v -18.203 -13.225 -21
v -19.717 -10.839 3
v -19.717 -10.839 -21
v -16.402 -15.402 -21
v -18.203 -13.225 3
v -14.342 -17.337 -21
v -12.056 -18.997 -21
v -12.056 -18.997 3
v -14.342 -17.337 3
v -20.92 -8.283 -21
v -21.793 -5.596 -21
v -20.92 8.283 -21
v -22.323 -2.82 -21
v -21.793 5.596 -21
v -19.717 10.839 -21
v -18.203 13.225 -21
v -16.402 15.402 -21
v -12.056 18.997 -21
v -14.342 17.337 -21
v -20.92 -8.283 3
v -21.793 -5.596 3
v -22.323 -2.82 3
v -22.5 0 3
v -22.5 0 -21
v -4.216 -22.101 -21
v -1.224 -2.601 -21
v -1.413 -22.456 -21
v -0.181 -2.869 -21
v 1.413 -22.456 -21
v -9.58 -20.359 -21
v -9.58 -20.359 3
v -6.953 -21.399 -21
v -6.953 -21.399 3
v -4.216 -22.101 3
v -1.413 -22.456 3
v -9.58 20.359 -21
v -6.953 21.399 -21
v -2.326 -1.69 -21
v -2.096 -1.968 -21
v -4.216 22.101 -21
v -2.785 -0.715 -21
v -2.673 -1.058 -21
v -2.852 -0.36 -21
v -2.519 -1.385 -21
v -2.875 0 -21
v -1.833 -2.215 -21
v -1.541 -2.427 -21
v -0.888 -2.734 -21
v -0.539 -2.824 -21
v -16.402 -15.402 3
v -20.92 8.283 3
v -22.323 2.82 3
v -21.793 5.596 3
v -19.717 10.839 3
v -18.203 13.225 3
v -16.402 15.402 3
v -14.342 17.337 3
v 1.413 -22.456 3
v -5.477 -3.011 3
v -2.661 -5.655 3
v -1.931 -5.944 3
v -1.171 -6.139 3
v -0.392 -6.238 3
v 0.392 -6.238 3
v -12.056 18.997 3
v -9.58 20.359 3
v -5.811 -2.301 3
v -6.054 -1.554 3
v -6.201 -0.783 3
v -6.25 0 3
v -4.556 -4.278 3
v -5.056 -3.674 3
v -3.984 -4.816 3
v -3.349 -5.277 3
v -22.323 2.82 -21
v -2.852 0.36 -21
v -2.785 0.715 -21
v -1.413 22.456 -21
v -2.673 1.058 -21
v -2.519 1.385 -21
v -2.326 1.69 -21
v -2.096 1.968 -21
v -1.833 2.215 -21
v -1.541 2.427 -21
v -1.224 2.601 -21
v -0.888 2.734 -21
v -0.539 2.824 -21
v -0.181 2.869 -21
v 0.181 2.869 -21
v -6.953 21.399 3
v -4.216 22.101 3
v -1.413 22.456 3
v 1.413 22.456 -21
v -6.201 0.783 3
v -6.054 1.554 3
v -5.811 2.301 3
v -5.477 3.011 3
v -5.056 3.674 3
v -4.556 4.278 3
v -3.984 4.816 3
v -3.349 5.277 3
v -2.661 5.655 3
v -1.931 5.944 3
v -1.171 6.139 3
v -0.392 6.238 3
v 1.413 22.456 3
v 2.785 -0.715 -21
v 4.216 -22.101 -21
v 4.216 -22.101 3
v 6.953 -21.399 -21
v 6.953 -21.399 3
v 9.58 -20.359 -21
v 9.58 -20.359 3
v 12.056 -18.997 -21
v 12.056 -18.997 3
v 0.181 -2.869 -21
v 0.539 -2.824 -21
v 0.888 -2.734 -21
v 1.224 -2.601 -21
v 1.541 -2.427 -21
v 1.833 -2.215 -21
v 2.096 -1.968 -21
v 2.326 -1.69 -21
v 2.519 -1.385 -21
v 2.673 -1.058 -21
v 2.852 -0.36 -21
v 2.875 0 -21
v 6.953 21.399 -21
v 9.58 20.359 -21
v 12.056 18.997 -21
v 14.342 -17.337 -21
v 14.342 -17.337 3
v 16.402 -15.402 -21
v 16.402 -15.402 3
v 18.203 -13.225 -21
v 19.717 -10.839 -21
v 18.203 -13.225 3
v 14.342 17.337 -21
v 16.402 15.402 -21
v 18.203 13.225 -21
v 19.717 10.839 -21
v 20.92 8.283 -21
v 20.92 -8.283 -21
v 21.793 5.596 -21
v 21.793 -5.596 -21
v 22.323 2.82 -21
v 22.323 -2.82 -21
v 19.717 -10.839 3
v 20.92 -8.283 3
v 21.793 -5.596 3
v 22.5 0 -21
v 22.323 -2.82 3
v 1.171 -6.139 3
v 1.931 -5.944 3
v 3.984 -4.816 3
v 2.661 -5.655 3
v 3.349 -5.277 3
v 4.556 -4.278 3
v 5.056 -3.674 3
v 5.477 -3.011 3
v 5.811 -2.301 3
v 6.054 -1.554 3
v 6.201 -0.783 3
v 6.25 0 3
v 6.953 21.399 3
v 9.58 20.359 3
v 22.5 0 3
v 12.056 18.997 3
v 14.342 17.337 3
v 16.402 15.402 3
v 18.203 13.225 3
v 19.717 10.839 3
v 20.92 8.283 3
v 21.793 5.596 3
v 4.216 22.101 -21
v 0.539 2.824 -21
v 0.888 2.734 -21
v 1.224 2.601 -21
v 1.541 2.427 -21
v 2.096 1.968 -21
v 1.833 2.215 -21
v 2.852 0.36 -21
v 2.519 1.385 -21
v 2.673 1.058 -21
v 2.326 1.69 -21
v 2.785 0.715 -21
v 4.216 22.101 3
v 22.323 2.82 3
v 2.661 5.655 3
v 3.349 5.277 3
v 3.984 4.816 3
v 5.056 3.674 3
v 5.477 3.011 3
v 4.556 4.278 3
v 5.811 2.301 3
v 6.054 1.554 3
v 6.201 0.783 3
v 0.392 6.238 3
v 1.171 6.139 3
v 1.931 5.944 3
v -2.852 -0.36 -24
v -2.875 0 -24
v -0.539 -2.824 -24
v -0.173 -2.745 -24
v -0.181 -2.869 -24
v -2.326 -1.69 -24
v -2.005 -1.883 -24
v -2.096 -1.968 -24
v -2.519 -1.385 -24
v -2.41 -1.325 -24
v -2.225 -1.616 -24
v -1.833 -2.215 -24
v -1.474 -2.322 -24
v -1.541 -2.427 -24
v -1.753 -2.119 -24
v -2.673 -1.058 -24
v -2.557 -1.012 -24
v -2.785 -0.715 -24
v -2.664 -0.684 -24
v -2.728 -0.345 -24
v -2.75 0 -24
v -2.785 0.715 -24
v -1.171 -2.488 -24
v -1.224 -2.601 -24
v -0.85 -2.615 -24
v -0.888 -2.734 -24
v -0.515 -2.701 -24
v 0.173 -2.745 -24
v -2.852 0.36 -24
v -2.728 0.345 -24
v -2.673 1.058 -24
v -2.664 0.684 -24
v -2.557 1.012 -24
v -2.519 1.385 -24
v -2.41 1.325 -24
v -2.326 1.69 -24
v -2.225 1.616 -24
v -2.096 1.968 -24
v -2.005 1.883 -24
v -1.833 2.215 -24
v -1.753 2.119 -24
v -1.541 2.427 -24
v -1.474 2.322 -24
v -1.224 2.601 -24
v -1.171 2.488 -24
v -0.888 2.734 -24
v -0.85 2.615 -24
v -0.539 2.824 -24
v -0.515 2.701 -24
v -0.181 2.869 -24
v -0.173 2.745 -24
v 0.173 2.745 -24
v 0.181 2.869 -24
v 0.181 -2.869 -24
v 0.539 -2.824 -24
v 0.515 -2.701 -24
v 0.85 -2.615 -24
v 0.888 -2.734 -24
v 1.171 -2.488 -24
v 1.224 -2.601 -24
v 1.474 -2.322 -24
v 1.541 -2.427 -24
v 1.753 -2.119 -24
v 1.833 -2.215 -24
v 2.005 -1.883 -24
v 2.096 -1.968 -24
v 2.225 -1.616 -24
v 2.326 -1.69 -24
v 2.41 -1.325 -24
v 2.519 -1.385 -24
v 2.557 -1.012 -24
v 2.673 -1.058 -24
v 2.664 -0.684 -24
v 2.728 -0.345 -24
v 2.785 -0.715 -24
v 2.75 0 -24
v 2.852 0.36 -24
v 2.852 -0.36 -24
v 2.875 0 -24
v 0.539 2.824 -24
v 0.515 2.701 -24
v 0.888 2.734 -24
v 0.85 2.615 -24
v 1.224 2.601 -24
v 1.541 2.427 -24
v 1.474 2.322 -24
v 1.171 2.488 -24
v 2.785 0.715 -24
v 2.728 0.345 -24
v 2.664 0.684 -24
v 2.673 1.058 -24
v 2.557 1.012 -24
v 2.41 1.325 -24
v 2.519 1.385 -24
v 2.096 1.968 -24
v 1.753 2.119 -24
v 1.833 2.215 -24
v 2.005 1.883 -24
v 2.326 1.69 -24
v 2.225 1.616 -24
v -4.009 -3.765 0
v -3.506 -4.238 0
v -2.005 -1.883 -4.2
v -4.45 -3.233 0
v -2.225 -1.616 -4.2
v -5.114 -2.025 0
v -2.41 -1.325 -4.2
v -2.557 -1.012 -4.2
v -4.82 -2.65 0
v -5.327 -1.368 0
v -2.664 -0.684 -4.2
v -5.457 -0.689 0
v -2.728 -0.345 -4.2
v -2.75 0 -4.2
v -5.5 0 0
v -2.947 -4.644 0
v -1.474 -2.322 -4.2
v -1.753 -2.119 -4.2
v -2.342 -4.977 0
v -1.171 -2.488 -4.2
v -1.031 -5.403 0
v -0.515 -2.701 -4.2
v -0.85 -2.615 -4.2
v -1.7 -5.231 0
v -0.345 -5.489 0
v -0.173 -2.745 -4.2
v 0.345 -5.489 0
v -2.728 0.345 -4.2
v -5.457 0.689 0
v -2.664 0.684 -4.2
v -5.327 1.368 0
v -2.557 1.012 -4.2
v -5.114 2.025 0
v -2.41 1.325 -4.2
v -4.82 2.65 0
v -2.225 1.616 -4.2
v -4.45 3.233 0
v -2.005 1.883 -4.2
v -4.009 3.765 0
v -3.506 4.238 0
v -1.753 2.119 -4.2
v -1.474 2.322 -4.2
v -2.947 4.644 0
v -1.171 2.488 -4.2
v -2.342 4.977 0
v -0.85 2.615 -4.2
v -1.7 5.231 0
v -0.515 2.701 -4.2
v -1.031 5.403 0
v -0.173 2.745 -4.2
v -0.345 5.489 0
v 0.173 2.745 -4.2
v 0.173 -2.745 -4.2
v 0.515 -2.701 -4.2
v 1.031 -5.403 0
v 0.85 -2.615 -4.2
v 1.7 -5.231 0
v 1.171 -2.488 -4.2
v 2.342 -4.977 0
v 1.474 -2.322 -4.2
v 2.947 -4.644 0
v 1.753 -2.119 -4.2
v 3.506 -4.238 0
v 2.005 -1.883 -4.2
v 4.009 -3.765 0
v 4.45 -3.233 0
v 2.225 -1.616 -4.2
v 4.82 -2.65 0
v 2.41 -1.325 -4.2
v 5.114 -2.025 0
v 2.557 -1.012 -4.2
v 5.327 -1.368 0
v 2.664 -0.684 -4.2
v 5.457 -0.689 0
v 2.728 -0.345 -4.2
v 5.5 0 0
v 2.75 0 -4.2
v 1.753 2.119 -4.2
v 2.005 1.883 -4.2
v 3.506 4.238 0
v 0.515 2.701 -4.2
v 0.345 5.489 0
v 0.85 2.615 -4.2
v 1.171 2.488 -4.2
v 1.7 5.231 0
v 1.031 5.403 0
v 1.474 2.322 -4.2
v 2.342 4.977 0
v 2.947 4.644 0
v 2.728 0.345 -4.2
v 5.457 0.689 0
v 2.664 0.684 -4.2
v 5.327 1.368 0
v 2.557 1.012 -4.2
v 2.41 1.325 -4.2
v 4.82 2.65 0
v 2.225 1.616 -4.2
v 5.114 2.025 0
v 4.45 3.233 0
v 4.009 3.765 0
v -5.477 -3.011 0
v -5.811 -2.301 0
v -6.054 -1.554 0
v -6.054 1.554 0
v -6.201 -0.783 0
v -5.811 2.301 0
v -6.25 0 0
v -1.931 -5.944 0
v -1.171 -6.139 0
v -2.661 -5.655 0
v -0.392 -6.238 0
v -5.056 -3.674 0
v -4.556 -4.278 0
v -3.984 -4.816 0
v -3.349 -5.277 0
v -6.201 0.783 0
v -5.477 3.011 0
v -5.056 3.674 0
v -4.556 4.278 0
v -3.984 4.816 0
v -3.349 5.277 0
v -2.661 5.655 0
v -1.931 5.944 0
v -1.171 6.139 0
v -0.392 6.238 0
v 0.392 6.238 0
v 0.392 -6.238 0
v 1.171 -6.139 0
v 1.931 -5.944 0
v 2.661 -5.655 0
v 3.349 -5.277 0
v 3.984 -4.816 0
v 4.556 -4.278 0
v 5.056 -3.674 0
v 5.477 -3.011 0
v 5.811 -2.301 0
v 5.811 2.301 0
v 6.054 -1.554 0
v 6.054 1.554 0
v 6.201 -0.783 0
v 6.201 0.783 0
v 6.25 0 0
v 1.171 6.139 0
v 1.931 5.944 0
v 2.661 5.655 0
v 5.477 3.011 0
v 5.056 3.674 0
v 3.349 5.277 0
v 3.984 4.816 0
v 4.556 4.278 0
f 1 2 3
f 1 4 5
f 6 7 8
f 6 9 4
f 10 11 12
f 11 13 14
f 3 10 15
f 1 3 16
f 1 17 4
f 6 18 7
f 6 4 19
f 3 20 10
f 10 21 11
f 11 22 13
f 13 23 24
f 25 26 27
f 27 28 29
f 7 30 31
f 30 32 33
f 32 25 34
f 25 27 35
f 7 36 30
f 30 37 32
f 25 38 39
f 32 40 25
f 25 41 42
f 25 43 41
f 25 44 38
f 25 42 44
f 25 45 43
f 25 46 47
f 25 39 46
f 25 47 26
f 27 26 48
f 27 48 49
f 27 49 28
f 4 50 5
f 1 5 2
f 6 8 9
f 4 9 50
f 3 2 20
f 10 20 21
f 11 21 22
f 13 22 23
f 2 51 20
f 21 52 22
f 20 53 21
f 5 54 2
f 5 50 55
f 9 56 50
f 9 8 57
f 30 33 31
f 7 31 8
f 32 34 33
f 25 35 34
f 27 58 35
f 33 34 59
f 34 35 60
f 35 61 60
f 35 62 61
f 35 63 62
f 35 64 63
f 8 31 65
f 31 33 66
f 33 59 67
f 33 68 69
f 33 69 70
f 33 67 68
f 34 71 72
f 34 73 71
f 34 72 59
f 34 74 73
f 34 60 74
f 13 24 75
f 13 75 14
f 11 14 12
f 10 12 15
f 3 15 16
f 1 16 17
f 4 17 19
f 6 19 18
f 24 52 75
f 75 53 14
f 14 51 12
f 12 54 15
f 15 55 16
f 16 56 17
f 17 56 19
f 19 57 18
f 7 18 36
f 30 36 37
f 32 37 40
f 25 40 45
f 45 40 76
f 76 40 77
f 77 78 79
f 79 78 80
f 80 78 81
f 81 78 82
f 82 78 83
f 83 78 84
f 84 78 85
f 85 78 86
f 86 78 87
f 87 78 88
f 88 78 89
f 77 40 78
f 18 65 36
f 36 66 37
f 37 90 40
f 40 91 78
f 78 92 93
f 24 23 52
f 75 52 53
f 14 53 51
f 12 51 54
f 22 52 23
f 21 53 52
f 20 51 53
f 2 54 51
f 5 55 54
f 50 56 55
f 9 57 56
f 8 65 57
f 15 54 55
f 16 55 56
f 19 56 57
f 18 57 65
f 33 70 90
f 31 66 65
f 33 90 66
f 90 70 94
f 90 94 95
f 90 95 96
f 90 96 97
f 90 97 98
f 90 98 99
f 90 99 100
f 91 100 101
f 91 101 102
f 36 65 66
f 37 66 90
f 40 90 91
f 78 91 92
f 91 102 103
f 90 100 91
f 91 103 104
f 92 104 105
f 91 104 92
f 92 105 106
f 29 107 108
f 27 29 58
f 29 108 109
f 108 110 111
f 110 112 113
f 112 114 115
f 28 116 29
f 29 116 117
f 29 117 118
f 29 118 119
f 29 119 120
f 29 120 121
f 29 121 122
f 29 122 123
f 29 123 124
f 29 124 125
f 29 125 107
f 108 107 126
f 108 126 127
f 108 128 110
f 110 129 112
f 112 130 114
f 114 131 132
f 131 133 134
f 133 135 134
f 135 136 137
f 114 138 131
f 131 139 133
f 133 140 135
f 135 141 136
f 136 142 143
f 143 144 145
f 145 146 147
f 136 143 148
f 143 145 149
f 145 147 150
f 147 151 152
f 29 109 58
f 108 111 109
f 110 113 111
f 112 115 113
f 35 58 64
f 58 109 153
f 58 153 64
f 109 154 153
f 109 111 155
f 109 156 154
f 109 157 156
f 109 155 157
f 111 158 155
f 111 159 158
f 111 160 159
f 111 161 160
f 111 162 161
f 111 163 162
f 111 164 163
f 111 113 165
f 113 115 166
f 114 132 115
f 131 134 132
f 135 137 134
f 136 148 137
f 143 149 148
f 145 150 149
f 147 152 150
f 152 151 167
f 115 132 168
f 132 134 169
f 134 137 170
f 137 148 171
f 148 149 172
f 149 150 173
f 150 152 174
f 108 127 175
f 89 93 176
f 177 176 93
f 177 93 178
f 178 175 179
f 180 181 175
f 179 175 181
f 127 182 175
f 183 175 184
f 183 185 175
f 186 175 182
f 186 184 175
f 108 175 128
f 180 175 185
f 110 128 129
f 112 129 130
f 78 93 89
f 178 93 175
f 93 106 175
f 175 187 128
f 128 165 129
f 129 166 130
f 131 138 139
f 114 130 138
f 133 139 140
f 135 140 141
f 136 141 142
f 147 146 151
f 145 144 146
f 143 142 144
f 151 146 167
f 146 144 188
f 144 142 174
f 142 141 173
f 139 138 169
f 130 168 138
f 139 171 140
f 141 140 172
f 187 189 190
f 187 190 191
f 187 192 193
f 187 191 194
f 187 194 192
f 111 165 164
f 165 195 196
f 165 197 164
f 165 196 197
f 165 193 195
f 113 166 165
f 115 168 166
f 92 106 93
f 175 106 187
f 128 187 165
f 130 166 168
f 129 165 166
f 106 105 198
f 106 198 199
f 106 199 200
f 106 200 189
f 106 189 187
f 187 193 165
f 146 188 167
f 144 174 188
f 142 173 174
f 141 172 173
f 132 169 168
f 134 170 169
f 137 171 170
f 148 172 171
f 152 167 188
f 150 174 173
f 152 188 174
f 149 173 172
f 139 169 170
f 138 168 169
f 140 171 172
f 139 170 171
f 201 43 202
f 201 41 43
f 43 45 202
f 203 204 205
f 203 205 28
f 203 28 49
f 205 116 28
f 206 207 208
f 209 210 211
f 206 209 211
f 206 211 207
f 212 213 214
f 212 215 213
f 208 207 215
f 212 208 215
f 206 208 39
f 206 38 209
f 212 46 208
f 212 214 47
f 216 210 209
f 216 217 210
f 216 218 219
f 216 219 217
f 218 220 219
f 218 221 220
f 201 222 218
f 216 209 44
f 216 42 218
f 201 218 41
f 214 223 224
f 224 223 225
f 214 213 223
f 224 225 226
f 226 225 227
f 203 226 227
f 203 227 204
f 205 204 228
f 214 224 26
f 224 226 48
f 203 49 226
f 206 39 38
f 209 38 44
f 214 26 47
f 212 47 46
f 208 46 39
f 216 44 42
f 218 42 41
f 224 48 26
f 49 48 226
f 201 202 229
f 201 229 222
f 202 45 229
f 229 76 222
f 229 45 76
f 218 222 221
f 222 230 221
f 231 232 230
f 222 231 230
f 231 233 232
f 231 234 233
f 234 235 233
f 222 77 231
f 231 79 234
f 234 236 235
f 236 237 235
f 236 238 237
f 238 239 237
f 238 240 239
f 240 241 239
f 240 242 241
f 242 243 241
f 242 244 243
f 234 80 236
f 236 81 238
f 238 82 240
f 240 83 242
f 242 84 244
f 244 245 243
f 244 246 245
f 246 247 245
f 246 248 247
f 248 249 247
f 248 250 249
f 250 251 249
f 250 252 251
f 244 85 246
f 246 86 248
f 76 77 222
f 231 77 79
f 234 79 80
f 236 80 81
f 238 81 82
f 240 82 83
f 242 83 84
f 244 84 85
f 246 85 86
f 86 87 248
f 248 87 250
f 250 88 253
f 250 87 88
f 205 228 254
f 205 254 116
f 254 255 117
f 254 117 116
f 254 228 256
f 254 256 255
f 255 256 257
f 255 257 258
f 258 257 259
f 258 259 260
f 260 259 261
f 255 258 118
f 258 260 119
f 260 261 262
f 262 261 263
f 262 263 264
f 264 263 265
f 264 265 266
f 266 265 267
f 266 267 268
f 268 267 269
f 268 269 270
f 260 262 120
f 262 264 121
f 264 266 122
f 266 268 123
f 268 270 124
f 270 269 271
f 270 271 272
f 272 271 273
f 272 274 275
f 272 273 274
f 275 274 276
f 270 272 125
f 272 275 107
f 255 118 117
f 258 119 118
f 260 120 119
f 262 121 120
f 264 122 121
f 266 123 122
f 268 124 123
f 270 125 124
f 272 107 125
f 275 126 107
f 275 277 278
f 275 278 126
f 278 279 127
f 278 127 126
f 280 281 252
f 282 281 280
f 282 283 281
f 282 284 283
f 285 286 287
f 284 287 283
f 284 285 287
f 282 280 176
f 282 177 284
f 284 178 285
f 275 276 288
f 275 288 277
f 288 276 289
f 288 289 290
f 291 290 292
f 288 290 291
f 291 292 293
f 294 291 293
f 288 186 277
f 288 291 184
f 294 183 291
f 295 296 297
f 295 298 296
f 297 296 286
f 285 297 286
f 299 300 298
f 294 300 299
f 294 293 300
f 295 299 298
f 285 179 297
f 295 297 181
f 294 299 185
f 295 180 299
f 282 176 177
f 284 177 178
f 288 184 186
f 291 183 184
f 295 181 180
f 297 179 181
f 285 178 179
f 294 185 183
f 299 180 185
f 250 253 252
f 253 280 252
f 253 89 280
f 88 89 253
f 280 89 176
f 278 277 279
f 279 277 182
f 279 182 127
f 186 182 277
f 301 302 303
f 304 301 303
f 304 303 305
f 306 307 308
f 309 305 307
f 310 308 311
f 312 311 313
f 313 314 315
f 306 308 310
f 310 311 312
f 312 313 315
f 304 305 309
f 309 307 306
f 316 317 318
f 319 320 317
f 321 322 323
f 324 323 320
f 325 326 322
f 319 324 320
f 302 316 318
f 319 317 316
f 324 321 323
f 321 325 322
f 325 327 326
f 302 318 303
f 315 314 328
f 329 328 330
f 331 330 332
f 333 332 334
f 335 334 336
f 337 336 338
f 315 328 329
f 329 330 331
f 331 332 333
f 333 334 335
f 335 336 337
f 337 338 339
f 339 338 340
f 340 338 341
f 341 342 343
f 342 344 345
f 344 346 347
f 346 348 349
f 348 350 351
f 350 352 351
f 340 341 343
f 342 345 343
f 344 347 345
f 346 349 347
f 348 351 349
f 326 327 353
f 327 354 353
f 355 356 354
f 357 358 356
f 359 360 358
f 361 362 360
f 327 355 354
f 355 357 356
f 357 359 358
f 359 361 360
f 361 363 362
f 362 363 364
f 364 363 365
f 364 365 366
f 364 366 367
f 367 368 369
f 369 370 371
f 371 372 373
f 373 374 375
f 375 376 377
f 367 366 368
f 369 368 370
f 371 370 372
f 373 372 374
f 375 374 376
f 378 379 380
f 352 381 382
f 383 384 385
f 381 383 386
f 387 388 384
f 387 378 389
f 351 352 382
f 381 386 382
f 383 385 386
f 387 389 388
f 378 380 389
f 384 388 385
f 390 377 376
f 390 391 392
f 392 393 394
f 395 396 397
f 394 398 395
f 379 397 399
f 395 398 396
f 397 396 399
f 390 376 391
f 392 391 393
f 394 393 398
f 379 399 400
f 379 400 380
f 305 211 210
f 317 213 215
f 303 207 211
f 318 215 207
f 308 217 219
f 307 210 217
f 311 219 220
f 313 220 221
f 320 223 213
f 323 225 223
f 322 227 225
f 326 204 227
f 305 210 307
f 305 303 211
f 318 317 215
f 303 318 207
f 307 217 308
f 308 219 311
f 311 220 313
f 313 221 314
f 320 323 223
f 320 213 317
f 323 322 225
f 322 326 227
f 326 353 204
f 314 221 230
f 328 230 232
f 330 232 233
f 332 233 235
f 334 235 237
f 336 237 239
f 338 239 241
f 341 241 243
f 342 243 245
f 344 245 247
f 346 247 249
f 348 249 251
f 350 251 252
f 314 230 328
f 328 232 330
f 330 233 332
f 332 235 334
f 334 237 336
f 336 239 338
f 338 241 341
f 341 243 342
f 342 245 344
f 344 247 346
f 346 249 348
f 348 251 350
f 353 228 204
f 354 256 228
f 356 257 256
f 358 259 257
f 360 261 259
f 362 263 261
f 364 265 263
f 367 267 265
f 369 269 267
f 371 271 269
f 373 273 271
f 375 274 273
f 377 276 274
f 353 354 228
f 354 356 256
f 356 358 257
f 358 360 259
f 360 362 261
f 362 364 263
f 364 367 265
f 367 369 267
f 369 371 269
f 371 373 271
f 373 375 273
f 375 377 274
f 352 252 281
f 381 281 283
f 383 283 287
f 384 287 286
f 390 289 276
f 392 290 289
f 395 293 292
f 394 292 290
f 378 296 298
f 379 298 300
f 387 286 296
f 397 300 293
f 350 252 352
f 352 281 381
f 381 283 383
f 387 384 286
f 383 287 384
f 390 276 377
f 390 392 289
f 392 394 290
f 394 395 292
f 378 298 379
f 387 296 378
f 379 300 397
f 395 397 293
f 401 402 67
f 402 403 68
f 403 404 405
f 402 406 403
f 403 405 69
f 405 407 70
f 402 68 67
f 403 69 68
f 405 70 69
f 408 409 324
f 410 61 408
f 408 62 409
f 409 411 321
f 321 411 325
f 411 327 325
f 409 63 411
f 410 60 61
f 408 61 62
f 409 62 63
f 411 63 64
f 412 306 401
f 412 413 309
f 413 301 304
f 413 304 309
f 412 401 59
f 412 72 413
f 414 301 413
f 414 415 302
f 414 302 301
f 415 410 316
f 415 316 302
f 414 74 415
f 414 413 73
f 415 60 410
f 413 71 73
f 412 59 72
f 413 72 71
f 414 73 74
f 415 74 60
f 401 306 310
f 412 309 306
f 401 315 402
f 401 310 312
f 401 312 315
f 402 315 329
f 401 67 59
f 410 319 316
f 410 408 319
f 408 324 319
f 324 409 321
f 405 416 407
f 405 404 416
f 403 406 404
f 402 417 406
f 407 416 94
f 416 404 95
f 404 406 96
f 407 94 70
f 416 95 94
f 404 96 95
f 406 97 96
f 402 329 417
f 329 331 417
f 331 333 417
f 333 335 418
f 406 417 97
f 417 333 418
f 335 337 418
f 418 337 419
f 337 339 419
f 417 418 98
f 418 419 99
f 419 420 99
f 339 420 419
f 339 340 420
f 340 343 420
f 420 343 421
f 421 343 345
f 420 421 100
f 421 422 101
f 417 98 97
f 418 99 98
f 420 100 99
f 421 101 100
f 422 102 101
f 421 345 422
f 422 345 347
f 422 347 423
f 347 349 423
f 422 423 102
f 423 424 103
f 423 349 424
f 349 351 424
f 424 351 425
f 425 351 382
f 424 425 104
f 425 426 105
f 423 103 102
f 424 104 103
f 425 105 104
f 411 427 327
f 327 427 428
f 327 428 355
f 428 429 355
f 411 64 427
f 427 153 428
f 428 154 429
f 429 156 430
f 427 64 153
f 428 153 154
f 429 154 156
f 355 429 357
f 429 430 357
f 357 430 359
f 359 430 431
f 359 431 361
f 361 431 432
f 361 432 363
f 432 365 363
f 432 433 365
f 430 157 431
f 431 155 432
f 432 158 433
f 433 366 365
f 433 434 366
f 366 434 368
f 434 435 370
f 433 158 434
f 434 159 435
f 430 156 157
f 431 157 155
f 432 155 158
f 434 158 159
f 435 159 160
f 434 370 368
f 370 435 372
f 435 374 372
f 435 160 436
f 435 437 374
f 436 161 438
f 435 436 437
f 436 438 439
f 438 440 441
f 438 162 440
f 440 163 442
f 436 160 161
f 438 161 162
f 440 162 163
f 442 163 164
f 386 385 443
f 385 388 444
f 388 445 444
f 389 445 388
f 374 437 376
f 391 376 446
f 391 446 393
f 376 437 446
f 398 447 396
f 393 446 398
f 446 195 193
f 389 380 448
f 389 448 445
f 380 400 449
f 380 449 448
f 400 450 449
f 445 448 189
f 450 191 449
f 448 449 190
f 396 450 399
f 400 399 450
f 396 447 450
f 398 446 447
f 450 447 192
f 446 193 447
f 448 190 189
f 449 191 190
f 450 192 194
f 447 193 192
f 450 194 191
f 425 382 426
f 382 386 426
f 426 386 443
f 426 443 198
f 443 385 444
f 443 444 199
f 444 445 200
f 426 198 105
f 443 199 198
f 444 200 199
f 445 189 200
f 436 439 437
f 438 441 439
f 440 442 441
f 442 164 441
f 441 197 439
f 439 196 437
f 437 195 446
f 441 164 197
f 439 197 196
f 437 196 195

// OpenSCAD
$fn = 50;

difference() {
	union() {
		translate(v = [0, 0, -21.0]) {
			cylinder(h = 24, r = 22.5);
		}
		#translate(v = [0, 0, -24.0]) {
			cylinder(h = 24, r = 2.875);
		}
	}
	union() {
		translate(v = [0, 0, 0]) {
			rotate(a = [0, 0, 0]) {
				difference() {
					union() {
						translate(v = [0, 0, -24.0]) {
							cylinder(h = 24, r = 2.25);
						}
						translate(v = [0, 0, -4.2]) {
							cylinder(h = 4.2, r1 = 2.75, r2 = 5.5);
						}
						translate(v = [0, 0, -24.0]) {
							cylinder(h = 24, r = 2.75);
						}
						translate(v = [0, 0, -24.0]) {
							cylinder(h = 24, r = 2.25);
						}
					}
					union();
				}
			}
		}
		#cylinder(h = 3, r = 6.25);
	}
}
